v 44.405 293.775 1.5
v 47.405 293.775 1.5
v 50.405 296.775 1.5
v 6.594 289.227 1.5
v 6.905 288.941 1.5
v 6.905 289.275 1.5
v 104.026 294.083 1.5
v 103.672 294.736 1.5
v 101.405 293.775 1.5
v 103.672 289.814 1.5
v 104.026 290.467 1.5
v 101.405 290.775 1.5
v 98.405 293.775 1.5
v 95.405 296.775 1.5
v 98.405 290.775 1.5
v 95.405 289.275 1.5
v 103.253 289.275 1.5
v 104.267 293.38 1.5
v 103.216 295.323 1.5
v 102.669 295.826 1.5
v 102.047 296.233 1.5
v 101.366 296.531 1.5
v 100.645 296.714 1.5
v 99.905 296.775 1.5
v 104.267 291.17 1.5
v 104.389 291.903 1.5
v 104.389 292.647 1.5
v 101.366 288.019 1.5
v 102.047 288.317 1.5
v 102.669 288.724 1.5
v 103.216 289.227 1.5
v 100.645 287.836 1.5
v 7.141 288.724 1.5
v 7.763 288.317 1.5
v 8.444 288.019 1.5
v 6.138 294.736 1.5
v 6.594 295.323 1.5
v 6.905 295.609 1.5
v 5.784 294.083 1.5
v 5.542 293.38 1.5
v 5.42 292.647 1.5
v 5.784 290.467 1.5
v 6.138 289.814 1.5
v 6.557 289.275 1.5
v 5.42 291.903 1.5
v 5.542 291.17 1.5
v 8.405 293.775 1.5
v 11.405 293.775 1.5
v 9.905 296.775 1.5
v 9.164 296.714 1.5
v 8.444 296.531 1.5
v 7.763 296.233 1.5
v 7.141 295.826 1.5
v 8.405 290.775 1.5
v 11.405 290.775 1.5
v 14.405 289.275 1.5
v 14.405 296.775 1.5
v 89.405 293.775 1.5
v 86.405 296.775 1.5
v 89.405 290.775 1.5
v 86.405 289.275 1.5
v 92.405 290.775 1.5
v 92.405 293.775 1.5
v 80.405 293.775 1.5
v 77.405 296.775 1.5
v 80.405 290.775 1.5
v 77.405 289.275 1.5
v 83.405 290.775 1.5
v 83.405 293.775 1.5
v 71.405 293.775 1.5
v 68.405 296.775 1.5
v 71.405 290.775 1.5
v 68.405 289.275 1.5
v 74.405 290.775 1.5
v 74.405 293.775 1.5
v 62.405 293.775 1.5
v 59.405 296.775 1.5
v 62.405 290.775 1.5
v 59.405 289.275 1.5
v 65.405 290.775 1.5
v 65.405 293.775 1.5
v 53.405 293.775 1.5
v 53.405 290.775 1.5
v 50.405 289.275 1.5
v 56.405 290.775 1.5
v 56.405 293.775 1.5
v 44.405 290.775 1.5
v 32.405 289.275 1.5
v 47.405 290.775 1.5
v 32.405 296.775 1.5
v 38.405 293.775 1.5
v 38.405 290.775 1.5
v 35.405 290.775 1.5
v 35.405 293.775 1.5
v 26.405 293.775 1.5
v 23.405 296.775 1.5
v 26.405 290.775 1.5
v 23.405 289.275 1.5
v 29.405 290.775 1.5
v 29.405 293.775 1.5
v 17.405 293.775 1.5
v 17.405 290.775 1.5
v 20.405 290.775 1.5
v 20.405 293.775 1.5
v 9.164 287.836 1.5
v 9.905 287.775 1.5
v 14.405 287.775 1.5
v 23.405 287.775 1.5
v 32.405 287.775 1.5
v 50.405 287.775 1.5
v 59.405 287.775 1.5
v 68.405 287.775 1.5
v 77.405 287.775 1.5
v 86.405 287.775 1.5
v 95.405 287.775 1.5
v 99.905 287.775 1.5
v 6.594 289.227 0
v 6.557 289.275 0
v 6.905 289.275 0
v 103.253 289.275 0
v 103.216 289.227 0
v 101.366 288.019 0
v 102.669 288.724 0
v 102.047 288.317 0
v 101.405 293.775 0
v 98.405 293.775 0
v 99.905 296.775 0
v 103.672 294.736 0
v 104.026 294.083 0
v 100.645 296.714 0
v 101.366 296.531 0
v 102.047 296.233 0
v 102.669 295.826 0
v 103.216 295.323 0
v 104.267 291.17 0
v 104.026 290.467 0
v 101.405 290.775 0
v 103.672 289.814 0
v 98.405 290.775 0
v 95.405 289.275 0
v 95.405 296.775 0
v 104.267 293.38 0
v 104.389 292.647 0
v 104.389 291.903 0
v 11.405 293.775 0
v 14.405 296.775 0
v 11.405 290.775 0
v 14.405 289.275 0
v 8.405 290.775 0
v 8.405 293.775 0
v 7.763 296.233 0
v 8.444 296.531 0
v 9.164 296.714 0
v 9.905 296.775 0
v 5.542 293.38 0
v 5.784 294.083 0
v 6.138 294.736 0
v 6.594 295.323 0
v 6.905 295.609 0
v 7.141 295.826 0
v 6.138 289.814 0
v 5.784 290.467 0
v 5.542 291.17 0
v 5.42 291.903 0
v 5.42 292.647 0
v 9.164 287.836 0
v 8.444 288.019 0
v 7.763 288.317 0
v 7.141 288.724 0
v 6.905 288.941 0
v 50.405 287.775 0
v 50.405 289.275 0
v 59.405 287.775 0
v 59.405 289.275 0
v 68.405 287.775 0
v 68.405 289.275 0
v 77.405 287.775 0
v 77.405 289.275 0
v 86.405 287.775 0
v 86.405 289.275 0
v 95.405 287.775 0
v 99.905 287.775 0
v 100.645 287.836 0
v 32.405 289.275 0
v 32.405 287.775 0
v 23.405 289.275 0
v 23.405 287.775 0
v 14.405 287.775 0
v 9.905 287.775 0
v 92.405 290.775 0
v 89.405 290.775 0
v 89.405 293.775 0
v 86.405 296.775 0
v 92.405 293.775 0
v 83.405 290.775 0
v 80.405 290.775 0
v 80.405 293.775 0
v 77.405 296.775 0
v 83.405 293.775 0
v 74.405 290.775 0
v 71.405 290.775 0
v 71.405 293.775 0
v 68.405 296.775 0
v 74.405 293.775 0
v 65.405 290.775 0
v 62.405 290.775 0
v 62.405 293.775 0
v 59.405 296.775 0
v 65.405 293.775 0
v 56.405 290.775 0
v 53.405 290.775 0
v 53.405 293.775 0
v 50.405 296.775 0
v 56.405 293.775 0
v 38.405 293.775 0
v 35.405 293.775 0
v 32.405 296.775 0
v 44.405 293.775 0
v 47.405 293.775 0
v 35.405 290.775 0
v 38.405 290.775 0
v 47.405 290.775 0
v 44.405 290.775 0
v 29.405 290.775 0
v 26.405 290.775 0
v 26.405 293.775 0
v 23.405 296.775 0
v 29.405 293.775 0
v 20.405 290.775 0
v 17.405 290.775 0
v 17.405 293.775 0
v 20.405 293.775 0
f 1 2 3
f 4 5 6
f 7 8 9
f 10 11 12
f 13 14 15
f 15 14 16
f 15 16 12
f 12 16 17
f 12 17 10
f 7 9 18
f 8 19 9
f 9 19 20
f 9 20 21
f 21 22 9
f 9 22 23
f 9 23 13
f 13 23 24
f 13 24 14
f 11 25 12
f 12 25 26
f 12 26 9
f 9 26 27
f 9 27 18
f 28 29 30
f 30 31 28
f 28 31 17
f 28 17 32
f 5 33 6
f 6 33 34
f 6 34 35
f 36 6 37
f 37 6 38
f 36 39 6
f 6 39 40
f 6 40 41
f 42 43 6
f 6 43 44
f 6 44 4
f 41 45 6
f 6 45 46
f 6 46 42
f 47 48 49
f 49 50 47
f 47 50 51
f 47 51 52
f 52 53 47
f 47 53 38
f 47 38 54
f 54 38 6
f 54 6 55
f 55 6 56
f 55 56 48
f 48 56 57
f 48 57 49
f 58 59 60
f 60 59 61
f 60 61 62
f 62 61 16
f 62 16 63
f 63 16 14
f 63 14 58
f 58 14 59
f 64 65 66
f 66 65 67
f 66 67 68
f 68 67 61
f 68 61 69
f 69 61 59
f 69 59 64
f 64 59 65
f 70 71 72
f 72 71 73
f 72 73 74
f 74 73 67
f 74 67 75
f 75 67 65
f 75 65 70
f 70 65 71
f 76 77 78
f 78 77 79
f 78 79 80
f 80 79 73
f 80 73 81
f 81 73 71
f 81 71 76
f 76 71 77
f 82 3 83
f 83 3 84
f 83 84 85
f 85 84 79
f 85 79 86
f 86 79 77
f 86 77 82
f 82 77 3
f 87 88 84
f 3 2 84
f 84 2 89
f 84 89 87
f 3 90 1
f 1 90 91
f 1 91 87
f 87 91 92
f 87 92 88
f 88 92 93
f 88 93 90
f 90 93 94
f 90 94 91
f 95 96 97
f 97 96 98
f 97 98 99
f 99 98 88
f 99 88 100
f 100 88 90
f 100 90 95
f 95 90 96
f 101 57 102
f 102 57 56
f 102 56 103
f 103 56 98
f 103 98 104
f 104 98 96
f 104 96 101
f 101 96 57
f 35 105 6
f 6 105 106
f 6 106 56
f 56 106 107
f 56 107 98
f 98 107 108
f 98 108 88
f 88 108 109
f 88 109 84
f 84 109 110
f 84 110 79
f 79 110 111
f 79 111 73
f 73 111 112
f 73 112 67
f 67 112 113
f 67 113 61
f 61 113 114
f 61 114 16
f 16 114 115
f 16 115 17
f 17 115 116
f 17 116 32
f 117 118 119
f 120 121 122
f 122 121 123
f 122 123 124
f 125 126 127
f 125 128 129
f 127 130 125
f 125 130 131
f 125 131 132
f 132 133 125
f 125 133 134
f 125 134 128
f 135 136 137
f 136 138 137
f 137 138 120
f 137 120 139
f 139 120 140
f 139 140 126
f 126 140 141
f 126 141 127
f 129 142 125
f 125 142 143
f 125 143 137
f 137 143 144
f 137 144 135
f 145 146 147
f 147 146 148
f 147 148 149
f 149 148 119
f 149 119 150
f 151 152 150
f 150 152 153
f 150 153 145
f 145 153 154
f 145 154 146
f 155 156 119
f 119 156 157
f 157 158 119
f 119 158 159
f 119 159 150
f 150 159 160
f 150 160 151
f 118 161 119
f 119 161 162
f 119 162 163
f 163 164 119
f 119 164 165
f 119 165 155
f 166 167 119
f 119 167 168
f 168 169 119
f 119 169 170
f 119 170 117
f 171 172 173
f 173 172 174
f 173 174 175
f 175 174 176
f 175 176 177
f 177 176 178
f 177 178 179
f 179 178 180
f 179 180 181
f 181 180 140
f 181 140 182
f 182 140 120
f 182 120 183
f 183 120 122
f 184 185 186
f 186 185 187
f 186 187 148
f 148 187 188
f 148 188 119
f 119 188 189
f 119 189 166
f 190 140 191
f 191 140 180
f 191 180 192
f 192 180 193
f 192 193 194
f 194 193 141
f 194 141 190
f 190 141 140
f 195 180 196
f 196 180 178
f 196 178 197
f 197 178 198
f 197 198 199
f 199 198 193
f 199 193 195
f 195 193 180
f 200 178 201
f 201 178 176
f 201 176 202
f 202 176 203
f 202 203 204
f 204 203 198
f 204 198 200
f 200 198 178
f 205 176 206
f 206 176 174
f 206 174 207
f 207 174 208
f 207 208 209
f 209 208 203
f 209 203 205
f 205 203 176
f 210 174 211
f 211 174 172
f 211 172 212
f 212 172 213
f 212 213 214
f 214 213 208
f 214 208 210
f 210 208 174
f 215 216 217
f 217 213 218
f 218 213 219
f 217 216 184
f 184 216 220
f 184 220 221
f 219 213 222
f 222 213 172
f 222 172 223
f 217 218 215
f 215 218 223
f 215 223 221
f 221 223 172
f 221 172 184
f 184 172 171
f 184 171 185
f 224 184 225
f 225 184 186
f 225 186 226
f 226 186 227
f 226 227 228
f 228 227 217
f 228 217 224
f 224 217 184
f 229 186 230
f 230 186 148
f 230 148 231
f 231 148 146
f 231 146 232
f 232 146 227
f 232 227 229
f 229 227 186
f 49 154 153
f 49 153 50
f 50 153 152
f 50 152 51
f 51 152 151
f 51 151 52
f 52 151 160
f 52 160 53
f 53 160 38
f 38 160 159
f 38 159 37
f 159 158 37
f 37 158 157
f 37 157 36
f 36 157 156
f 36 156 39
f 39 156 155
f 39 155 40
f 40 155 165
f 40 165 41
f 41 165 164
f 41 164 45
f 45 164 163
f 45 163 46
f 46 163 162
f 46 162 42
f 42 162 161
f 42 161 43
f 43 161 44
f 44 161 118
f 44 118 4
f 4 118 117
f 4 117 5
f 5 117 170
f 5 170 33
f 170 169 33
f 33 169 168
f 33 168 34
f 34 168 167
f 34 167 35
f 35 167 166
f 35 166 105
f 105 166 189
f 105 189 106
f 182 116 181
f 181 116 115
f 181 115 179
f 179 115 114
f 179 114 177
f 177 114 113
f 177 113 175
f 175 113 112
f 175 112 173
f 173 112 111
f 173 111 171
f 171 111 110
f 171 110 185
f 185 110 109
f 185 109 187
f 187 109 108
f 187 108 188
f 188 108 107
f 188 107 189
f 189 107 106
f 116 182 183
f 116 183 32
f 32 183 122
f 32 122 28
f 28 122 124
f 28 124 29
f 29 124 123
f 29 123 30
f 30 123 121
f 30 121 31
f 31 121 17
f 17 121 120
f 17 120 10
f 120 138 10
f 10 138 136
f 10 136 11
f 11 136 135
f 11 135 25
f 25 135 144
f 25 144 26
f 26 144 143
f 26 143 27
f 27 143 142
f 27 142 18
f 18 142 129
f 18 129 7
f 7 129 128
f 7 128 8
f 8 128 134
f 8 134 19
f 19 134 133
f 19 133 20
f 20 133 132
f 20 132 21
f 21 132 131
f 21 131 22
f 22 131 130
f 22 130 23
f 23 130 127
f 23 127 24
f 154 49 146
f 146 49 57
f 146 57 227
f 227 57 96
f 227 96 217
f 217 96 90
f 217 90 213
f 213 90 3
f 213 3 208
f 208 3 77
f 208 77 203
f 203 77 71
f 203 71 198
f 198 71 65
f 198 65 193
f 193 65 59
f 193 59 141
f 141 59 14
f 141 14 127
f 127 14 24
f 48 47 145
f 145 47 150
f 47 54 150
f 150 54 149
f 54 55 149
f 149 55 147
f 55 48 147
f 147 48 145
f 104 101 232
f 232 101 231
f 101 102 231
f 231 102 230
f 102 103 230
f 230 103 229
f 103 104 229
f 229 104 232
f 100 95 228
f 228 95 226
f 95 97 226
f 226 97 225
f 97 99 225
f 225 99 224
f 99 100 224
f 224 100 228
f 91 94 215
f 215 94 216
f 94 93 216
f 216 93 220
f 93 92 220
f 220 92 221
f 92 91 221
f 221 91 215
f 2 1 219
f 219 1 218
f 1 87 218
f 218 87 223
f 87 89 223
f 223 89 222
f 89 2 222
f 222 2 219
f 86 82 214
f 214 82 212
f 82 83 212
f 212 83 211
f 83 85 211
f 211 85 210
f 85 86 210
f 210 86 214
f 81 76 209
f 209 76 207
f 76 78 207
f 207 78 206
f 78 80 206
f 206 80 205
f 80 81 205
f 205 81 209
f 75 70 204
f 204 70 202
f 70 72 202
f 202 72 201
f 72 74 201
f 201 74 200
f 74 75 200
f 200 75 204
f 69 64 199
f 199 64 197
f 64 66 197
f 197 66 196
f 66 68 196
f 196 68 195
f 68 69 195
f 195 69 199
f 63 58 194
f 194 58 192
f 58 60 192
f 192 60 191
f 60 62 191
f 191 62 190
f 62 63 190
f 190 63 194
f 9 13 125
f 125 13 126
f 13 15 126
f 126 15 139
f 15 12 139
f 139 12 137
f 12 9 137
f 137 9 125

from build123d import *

# Parameters (mm, degrees)
MODEL_W                 = 3
MODEL_H                 = 3
SALIENTE_EXTRUIR1_DEPTH = 1.5


with BuildPart() as part:
    # Model → Saliente-Extruir1 (new body)
    with BuildSketch(Plane.XY):
        with BuildLine():
            Line((9.904781567, 296.774995526), (99.904781567, 296.774995526))
            ThreePointArc((99.904781567, 296.774995526), (104.404781567, 292.274995526), (99.904781567, 287.774995526))
            Line((99.904781567, 287.774995526), (9.904781567, 287.774995526))
            ThreePointArc((9.904781567, 287.774995526), (5.404781567, 292.274995526), (9.904781567, 296.774995526))
        make_face()
        with Locations((9.904781567, 292.274995526)):
            Rectangle(MODEL_W, MODEL_H, mode=Mode.SUBTRACT)
        with Locations((18.904781567, 292.274995526)):
            Rectangle(MODEL_W, MODEL_H, mode=Mode.SUBTRACT)
        with Locations((27.904781567, 292.274995526)):
            Rectangle(MODEL_W, MODEL_H, mode=Mode.SUBTRACT)
        with Locations((36.904781567, 292.274995526)):
            Rectangle(MODEL_W, MODEL_H, mode=Mode.SUBTRACT)
        with Locations((45.904781567, 292.274995526)):
            Rectangle(MODEL_W, MODEL_H, mode=Mode.SUBTRACT)
        with Locations((54.904781567, 292.274995526)):
            Rectangle(MODEL_W, MODEL_H, mode=Mode.SUBTRACT)
        with Locations((63.904781567, 292.274995526)):
            Rectangle(MODEL_W, MODEL_H, mode=Mode.SUBTRACT)
        with Locations((72.904781567, 292.274995526)):
            Rectangle(MODEL_W, MODEL_H, mode=Mode.SUBTRACT)
        with Locations((81.904781567, 292.274995526)):
            Rectangle(MODEL_W, MODEL_H, mode=Mode.SUBTRACT)
        with Locations((90.904781567, 292.274995526)):
            Rectangle(MODEL_W, MODEL_H, mode=Mode.SUBTRACT)
        with Locations((99.904781567, 292.274995526)):
            Rectangle(MODEL_W, MODEL_H, mode=Mode.SUBTRACT)
    extrude(amount=SALIENTE_EXTRUIR1_DEPTH)


solid = part.part
